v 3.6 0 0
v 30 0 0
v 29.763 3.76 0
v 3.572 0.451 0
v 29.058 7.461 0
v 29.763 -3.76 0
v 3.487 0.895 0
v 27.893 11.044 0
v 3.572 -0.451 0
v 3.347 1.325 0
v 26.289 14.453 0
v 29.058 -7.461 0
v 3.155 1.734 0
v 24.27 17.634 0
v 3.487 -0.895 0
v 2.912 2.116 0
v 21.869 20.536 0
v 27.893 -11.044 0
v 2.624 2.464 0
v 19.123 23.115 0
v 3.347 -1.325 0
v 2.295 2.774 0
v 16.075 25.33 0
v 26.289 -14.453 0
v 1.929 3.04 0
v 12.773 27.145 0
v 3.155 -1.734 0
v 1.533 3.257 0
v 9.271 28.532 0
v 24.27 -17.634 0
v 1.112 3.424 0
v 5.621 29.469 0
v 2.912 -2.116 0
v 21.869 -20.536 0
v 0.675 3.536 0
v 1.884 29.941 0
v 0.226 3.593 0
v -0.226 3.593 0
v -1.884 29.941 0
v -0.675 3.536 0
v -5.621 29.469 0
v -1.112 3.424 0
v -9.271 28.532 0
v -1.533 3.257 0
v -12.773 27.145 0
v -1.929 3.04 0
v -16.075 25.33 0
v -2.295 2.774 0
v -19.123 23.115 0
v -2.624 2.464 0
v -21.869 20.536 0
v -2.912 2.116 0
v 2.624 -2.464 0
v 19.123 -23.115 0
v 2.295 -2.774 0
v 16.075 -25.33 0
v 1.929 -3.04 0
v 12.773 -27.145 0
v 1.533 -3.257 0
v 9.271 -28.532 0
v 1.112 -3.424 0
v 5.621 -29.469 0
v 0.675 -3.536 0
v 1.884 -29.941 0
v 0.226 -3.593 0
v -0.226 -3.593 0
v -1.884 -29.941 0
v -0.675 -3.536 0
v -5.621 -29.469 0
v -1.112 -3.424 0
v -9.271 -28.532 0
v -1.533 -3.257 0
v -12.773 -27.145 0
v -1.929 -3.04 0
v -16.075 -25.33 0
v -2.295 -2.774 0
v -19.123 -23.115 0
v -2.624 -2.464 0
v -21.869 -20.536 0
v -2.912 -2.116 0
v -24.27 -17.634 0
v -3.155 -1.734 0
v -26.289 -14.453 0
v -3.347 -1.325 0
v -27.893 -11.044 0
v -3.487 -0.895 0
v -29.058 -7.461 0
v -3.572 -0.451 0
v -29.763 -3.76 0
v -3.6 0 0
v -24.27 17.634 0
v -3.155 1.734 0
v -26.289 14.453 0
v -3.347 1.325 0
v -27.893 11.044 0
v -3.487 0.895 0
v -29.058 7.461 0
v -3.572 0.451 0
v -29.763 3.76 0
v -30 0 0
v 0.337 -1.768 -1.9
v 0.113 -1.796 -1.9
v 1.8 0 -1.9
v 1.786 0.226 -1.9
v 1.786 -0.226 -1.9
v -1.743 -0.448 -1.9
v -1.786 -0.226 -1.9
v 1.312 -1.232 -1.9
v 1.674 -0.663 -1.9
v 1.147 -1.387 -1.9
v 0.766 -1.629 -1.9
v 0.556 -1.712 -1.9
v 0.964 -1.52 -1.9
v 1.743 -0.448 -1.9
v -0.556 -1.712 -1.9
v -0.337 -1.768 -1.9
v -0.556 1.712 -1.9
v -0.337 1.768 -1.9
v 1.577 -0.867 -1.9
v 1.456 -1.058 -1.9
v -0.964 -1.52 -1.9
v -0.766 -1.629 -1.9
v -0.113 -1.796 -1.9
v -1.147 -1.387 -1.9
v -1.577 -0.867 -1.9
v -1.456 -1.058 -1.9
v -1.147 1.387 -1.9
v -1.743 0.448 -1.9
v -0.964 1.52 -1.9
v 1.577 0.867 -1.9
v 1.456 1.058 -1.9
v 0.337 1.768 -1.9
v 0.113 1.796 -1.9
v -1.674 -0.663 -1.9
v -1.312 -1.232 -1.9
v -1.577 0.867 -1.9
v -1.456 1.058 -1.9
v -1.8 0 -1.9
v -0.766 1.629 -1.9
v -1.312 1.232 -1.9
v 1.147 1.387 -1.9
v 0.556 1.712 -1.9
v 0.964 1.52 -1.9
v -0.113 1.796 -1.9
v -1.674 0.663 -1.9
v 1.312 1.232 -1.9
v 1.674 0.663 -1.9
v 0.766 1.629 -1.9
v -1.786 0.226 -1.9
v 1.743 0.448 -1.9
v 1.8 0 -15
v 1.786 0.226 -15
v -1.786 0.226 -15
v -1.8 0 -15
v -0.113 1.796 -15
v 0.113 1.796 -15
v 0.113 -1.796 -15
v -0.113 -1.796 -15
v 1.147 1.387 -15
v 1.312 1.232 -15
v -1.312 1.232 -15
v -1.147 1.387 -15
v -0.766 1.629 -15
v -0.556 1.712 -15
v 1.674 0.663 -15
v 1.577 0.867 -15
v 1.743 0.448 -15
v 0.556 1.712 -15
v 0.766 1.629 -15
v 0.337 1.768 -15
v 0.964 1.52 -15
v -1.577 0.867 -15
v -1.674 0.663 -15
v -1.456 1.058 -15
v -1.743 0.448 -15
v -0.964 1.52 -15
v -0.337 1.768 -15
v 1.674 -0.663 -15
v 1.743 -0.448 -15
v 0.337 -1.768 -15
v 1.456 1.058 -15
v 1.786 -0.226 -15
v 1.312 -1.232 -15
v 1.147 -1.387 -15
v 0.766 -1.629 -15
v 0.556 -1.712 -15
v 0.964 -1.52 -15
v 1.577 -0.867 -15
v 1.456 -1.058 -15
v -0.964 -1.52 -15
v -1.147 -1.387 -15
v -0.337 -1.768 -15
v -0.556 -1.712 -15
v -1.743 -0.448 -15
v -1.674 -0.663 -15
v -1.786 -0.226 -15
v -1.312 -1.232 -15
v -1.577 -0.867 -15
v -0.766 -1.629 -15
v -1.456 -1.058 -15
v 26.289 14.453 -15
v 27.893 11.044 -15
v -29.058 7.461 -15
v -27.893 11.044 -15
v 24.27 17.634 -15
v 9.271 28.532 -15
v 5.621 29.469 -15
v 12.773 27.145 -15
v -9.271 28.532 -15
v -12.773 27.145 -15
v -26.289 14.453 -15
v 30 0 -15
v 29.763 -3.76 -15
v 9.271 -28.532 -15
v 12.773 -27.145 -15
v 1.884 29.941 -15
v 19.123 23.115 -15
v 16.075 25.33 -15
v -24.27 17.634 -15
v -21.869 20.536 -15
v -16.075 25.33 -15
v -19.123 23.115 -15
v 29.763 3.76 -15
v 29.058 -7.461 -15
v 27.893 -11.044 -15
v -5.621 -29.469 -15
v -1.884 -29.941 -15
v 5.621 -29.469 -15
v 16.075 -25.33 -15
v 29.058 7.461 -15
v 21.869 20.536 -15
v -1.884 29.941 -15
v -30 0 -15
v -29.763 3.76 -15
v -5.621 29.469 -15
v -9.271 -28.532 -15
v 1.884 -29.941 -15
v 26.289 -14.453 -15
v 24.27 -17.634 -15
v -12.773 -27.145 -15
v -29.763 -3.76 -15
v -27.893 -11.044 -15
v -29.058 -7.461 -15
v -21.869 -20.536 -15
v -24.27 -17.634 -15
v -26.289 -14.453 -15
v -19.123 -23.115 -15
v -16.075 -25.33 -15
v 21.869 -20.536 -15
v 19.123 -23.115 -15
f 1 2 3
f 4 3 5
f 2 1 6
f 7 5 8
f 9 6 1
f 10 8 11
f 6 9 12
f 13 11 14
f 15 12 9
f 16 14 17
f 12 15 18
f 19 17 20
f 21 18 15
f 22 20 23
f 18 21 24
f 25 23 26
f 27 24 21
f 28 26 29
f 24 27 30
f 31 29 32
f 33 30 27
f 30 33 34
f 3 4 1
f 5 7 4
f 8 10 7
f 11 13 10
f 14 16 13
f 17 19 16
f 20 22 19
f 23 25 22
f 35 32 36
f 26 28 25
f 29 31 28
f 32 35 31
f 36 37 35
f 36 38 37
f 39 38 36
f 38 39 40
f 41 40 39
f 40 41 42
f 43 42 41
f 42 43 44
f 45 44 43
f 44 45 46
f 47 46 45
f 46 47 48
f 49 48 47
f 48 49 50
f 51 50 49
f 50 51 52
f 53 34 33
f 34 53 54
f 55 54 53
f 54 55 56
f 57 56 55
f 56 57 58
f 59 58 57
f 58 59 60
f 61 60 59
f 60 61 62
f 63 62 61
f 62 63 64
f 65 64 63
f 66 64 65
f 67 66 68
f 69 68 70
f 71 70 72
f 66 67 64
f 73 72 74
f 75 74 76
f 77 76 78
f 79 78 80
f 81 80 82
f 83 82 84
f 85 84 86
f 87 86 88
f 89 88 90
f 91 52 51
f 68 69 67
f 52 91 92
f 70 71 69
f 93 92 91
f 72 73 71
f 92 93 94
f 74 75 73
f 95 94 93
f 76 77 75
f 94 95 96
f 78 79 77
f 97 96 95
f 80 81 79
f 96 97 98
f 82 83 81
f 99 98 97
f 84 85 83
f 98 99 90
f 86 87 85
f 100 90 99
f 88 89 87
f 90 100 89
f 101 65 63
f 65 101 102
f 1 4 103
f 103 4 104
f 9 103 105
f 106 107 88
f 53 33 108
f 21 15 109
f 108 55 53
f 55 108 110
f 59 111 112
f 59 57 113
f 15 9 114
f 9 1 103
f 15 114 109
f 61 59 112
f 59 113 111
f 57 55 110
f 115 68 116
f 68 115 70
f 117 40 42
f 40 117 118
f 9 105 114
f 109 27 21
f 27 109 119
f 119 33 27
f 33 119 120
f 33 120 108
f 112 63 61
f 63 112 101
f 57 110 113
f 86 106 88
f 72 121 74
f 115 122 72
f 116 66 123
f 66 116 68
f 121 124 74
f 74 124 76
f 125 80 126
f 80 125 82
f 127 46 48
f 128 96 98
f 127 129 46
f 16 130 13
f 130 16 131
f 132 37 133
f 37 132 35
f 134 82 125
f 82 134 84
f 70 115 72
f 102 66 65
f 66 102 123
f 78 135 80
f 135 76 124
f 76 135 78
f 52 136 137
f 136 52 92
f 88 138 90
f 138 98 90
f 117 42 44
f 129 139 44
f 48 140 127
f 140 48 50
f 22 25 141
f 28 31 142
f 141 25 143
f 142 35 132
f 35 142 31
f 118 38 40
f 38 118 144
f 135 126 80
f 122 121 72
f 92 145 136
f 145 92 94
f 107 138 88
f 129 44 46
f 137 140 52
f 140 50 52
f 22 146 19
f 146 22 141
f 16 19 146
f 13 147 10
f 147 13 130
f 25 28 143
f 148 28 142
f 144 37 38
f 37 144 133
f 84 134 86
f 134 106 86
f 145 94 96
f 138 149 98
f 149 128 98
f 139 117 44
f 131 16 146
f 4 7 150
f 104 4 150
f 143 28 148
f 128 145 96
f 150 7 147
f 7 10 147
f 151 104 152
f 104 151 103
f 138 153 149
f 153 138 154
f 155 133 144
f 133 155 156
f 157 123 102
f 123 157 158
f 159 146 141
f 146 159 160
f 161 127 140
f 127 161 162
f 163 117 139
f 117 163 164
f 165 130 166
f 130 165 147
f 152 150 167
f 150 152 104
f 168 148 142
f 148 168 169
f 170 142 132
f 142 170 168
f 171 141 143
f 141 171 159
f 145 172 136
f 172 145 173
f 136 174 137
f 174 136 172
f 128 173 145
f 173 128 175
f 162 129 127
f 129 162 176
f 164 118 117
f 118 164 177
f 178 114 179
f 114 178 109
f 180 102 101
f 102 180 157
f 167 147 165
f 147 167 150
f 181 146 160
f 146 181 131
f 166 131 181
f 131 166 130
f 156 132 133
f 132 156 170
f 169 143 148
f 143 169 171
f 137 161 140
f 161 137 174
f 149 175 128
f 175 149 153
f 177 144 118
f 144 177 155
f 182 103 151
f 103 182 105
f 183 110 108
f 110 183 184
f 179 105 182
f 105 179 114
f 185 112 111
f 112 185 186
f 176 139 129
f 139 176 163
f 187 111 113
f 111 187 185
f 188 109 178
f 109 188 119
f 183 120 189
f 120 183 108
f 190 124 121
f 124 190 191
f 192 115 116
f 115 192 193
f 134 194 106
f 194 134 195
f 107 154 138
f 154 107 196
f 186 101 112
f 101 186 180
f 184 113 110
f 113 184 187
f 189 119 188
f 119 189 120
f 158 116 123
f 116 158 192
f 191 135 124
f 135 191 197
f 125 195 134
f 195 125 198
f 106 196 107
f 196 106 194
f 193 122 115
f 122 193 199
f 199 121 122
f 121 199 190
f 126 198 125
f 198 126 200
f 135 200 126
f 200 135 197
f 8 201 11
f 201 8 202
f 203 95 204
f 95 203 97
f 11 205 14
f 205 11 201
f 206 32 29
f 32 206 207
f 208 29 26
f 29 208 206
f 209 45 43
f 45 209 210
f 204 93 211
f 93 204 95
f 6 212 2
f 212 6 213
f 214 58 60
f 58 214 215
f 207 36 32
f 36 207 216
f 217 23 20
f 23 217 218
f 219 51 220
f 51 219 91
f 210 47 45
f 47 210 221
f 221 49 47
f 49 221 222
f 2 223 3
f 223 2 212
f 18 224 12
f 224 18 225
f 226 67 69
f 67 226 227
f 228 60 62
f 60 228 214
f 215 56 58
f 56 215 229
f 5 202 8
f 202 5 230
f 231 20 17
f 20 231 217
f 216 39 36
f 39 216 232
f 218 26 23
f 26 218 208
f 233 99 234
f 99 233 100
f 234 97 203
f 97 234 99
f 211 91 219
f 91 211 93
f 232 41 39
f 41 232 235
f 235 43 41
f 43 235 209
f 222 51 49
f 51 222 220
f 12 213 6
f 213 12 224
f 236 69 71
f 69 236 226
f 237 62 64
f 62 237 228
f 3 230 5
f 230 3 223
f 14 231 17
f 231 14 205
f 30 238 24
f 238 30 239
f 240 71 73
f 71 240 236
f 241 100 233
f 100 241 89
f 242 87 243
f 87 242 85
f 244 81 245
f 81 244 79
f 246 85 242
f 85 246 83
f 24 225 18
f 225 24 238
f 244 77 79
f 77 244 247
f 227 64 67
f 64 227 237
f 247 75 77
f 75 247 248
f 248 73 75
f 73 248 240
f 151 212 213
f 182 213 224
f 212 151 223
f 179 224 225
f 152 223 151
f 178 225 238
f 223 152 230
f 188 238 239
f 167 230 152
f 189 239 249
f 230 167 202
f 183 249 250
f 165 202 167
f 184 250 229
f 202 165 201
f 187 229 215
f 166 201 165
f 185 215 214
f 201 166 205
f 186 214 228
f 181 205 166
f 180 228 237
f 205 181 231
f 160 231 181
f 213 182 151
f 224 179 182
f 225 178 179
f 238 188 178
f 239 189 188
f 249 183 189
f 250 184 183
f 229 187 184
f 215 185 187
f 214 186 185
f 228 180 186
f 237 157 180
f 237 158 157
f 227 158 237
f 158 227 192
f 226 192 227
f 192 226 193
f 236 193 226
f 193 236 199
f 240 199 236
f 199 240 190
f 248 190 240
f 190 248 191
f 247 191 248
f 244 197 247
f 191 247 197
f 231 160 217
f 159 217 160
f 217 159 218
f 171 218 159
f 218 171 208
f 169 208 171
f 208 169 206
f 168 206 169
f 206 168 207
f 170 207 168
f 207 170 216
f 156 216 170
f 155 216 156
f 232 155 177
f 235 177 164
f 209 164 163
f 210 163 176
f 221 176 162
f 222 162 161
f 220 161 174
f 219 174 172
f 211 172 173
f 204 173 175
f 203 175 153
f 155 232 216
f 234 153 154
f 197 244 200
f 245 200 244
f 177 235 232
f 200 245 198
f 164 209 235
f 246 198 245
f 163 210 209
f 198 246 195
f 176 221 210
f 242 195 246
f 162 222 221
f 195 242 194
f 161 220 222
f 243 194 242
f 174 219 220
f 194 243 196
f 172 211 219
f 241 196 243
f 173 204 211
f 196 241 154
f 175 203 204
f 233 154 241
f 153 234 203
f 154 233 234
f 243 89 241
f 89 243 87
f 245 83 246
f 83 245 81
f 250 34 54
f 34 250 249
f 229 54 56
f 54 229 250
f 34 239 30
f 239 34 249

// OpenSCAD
$fn = 50;

difference() {
	union() {
		translate(v = [0, 0, -15.0]) {
			cylinder(h = 15, r = 30.0);
		}
	}
	union() {
		translate(v = [0, 0, 0]) {
			rotate(a = [0, 0, 0]) {
				difference() {
					union() {
						translate(v = [0, 0, -18.0]) {
							cylinder(h = 18, r = 1.5);
						}
						translate(v = [0, 0, -1.9]) {
							cylinder(h = 1.9, r1 = 1.8, r2 = 3.6);
						}
						translate(v = [0, 0, -18.0]) {
							cylinder(h = 18, r = 1.8);
						}
						translate(v = [0, 0, -18.0]) {
							cylinder(h = 18, r = 1.5);
						}
					}
					union();
				}
			}
		}
	}
}
